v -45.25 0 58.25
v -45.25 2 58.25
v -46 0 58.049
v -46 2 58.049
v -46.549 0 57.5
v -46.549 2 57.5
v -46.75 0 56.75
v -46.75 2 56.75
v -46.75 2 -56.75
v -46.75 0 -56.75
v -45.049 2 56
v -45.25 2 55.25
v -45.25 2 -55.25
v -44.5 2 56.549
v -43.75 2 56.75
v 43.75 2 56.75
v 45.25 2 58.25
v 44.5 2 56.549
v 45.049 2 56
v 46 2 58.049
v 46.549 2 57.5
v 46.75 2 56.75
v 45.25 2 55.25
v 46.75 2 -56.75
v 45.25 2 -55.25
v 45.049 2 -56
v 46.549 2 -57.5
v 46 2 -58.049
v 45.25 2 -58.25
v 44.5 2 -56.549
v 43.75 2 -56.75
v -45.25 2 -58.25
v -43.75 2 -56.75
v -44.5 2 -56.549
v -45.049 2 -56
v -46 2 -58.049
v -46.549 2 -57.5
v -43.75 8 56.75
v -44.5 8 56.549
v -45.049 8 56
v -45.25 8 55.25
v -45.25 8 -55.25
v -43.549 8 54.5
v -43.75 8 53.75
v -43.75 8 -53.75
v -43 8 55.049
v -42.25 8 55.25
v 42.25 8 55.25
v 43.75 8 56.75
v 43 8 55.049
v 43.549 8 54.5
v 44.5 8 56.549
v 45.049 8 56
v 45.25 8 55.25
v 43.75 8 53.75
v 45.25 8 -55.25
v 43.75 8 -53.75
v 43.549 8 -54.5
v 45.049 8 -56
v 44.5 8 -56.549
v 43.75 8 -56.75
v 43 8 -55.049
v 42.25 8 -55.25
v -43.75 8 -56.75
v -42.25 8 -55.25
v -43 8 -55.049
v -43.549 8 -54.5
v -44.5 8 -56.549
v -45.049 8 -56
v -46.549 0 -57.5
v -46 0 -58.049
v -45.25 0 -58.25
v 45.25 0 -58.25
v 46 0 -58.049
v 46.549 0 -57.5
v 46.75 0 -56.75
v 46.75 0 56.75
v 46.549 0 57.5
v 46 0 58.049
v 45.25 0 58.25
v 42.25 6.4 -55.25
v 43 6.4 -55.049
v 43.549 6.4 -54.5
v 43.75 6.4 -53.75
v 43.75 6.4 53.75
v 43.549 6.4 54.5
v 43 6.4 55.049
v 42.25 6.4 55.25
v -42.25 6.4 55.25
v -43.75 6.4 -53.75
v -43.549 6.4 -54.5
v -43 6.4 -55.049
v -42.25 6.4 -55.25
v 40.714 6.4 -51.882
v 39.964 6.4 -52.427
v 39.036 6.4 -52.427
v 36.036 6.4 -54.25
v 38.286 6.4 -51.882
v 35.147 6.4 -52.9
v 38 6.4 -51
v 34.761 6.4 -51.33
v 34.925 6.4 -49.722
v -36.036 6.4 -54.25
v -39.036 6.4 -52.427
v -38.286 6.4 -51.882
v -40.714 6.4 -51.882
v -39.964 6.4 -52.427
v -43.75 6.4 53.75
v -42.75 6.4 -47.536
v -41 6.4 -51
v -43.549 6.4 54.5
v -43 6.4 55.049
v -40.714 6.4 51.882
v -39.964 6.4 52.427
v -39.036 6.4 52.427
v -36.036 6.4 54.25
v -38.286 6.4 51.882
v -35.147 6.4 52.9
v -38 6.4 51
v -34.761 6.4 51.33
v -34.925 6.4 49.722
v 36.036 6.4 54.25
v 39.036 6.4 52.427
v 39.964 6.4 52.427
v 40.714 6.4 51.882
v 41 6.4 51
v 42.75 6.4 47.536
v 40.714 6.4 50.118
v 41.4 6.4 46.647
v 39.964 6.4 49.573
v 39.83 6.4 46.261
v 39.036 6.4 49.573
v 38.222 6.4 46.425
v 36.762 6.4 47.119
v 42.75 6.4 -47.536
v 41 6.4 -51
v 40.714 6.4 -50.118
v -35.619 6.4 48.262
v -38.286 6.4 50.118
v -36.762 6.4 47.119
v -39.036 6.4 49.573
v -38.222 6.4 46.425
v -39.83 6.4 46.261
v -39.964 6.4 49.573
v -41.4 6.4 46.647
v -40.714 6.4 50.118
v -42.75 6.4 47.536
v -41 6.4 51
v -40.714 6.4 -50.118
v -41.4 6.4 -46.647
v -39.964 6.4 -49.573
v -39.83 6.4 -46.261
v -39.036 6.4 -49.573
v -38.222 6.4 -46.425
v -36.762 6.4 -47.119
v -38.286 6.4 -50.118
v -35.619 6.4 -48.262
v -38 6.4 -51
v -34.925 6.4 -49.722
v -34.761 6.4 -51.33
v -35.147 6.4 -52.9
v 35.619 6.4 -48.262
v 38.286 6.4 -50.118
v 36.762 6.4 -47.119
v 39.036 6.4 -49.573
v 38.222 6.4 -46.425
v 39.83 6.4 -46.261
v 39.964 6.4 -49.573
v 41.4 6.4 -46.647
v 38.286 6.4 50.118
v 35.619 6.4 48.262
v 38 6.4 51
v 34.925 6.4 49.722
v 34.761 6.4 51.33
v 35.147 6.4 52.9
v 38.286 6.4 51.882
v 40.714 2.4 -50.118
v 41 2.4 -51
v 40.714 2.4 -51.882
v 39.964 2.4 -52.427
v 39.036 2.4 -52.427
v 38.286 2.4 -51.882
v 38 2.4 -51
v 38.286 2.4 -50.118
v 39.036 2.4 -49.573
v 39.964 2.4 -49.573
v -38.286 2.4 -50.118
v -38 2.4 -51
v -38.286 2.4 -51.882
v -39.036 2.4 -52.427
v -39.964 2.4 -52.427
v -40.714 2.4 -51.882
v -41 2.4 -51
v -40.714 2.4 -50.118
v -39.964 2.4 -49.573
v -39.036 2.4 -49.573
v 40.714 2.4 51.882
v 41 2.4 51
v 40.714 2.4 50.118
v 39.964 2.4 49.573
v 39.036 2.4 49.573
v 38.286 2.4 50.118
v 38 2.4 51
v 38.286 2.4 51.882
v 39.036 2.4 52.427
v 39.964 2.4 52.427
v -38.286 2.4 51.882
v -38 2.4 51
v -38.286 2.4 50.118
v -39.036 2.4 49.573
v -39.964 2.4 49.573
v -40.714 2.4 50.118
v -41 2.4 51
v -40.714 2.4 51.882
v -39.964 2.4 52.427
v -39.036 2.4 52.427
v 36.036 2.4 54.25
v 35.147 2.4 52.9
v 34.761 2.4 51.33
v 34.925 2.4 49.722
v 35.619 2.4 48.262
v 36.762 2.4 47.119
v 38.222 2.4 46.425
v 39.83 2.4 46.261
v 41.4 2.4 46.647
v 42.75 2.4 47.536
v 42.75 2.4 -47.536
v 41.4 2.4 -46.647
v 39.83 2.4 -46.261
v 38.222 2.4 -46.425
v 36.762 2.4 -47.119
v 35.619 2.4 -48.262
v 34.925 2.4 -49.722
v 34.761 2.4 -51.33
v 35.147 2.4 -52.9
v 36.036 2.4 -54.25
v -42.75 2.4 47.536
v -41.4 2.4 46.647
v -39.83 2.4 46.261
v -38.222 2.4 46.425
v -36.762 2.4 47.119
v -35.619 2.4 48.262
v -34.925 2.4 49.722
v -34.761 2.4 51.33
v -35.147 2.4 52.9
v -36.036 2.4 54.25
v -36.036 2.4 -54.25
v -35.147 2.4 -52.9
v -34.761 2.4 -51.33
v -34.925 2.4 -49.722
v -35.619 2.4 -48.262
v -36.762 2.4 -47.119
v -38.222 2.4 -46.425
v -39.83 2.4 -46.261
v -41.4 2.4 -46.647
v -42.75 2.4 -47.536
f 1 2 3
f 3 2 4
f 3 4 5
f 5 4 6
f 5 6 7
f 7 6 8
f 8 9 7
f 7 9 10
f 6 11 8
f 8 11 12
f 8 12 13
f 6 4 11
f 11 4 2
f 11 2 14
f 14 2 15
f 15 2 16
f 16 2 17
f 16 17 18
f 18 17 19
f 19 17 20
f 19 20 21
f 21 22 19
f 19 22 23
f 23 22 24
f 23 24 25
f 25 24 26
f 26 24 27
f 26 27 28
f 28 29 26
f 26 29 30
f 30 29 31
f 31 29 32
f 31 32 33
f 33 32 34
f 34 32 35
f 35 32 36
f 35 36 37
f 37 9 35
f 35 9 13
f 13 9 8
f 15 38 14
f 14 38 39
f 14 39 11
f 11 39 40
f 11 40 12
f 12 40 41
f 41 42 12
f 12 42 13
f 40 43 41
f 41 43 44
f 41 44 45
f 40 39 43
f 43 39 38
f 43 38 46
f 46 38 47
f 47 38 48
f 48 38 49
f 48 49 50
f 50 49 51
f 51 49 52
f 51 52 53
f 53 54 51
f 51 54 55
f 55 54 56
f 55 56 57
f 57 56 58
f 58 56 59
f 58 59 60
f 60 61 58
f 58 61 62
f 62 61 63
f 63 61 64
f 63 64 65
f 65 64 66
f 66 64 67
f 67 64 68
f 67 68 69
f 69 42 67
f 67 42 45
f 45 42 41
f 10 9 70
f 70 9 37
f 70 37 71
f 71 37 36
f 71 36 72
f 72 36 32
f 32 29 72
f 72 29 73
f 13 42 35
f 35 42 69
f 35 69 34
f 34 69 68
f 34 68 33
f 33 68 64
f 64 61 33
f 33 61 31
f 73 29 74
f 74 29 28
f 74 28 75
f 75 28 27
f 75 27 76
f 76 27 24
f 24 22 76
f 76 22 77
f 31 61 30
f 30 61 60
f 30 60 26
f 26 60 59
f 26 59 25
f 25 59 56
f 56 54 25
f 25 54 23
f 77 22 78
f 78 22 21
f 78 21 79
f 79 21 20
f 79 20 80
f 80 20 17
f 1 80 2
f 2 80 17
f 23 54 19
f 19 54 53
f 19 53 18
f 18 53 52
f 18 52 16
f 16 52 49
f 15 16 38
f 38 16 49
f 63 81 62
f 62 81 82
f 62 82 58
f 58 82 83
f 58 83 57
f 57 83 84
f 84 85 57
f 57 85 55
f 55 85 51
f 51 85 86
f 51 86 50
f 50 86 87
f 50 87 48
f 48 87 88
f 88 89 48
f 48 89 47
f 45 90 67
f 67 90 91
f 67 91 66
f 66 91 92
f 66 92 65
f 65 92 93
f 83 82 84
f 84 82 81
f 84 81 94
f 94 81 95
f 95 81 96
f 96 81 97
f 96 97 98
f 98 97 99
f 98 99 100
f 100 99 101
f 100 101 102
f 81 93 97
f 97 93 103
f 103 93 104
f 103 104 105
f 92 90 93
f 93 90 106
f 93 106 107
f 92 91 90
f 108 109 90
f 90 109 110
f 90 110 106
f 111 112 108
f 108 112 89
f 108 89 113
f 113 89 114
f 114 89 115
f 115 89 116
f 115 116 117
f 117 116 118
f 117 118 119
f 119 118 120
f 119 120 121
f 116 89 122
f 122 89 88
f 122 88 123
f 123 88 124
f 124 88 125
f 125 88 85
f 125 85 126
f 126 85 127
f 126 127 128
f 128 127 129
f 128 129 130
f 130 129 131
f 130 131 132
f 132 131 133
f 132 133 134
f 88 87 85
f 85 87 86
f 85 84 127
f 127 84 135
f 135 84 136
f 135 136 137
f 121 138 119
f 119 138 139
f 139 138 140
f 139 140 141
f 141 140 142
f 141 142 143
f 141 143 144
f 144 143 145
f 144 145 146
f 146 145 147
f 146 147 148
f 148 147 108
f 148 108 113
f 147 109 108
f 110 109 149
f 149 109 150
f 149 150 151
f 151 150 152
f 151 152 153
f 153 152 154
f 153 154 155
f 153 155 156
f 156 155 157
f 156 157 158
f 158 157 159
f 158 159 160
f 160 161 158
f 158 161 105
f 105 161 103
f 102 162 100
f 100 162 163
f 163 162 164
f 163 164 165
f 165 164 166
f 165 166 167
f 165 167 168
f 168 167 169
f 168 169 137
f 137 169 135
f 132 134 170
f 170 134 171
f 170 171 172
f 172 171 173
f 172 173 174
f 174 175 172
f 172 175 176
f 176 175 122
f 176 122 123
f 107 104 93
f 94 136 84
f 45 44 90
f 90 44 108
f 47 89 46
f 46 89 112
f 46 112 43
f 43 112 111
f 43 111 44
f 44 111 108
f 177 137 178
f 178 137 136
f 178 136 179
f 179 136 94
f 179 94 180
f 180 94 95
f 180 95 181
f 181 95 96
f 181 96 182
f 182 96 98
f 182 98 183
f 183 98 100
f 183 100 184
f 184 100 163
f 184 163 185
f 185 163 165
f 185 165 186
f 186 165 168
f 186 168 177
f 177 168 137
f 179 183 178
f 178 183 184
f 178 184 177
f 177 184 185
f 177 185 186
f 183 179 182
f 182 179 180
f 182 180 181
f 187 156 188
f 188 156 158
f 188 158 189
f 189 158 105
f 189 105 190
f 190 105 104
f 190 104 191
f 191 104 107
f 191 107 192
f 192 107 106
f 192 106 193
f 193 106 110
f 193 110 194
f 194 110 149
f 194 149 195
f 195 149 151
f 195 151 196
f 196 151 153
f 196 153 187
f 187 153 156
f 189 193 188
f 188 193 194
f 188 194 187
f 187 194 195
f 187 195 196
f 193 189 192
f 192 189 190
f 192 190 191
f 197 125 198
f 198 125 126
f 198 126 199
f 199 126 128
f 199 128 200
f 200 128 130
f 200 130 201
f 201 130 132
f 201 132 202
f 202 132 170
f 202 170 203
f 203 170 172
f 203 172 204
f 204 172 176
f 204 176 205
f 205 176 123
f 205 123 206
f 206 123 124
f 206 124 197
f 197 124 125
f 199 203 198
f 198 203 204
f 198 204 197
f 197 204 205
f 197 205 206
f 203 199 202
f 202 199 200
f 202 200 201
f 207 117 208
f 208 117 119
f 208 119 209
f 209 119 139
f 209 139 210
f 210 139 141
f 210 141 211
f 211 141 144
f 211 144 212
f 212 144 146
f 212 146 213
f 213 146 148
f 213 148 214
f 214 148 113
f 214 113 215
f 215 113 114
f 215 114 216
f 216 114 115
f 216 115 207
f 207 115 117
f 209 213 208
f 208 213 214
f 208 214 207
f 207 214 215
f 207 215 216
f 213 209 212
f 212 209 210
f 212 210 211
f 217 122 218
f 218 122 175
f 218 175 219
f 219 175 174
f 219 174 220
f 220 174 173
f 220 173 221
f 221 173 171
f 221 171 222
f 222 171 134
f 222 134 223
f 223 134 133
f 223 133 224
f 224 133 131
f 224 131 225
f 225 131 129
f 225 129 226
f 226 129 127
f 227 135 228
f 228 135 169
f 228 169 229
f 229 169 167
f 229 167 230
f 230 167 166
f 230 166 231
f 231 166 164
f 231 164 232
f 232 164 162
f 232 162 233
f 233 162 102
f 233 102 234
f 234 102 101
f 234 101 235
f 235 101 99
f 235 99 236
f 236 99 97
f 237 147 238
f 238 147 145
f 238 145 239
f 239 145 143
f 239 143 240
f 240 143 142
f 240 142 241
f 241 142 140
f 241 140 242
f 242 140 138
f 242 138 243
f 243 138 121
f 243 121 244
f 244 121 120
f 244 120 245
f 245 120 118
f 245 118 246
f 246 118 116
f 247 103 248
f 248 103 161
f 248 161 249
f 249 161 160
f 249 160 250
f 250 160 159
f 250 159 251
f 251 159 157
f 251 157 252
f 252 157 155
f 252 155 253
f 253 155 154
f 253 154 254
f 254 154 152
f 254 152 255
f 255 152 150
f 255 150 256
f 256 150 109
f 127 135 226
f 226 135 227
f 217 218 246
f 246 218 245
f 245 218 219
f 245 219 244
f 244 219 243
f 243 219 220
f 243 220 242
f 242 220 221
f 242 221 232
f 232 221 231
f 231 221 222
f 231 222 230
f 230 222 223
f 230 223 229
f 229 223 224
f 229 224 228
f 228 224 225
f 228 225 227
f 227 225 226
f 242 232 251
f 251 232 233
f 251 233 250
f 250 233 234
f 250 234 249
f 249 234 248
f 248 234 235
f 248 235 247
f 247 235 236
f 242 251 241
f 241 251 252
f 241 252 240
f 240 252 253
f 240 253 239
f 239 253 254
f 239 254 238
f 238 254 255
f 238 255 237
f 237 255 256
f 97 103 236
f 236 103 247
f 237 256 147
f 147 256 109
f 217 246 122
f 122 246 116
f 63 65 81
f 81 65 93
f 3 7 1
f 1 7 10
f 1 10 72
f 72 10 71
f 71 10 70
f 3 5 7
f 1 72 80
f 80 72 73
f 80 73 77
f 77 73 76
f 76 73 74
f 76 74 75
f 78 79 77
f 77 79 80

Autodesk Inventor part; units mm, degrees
ref_plane "YZ Plane" through (0, 0, 0) normal (1, 0, 0) x (0, 1, 0)
ref_plane "XZ Plane" through (0, 0, 0) normal (0, 1, 0) x (-1, 0, 0)
ref_plane "XY Plane" through (0, 0, 0) normal (0, 0, 1) x (1, 0, 0)
sketch "Sketch1" plane through (0, 0, 0) normal (0, 1, 0) x (-1, 0, 0)
  line L0 (-46.75, 58.25) -> (46.75, 58.25)
  line L1 (46.75, 58.25) -> (46.75, -58.25)
  line L2 (46.75, -58.25) -> (-46.75, -58.25)
  line L3 (-46.75, -58.25) -> (-46.75, 58.25)
  line L4 (-46.75, 58.25) -> (46.75, -58.25) construction
  line L5 (46.75, 58.25) -> (-46.75, -58.25) construction
  point P0 (0, 0)
  dimension "d0" = 116.5
  dimension "d1" = 93.5
extrude "Extrusion1" add sketch "Sketch1" along normal blind 8
sketch "Sketch2" plane through (0, 8, 0) normal (0, 1, 0) x (1, 0, 0)
  line L0 (43.75, -55.25) -> (-43.75, -55.25)
  line L1 (-43.75, -55.25) -> (-43.75, 55.25)
  line L2 (-43.75, 55.25) -> (43.75, 55.25)
  line L3 (43.75, 55.25) -> (43.75, -55.25)
  line L4 (43.75, -55.25) -> (-43.75, 55.25) construction
  line L5 (-43.75, -55.25) -> (43.75, 55.25) construction
  point P0 (0, 0)
  dimension "d4" = 110.5
  dimension "d5" = 87.5
extrude "Extrusion2" cut sketch "Sketch2" against normal blind 1.6
sketch "Sketch3" plane through (0, 6.4, 0) normal (0, 1, 0) x (1, 0, 0)
  line L0 (42.75, -54.25) -> (-42.75, -54.25)
  line L1 (-42.75, -54.25) -> (-42.75, 54.25)
  line L2 (-42.75, 54.25) -> (42.75, 54.25)
  line L3 (42.75, 54.25) -> (42.75, -54.25)
  line L4 (42.75, -54.25) -> (-42.75, 54.25) construction
  line L5 (-42.75, -54.25) -> (42.75, 54.25) construction
  point P0 (0, 0)
  dimension "d8" = 108.5
  dimension "d9" = 85.5
extrude "Extrusion3" cut sketch "Sketch3" against normal blind 4
sketch "Sketch4" plane through (0, 2.4, 0) normal (0, 1, 0) x (1, 0, 0)
  circle A0 centre (-39.5, -51) radius 4.75
  circle A1 centre (-39.5, 51) radius 4.75
  line L0 (42.75, -54.25) -> (-42.75, -54.25) projected
  circle A2 centre (39.5, -51) radius 4.75
  line L1 (42.75, 54.25) -> (42.75, -54.25) projected
  circle A3 centre (39.5, 51) radius 4.75
  line L2 (-42.75, -54.25) -> (-42.75, 54.25) projected
  line L3 (-43.75, -55.25) -> (-43.75, 55.25) projected
  line L4 (-43.75, 55.25) -> (43.75, 55.25) projected
  line L5 (43.75, -55.25) -> (-43.75, -55.25) projected
  point P0 (0, 0)
  point P1 (-42.75, 54.25)
  point P2 (-42.75, -47.5359)
  point P3 (-36.0359, -54.25)
  point P4 (42.75, -47.5359)
  point P5 (36.0359, -54.25)
  point P6 (41, 55.25)
  point P7 (41, -55.25)
  point P8 (-41, -55.25)
  point P9 (-41, 55.25)
  dimension "d12" = 9.5
  dimension "d13" = 9.5
  dimension "d14" = 102
  dimension "d17" = 9.5
  dimension "d20" = 79
  dimension "d21" = 9.5
  dimension "d22" = 102
  dimension "d23" = 79
  dimension "d42" = 4.25
  dimension "d43" = 4.25
  dimension "d44" = 4.25
  dimension "d45" = 4.25
extrude "Extrusion4" add sketch "Sketch4" along normal blind 4 contours A0 L0 L2 | L2 L0 A0 L5 L3 | L3 A0 | A1 L3 L4 | A0 L5 | A2 L1 L0 | L0 L1 A2 L5 | A1 L3 | L5 A2 | L4 A1 | A3 L4 | A3 L4 picked at (-38.9284, 52.0845)
sketch "Sketch5" plane through (0, 6.4, 0) normal (0, 1, 0) x (1, 0, 0)
  arc A0 (-36.0359, -54.25) -> (-42.75, -47.5359) centre (-39.5, -51) ccw projected
  circle A1 centre (-39.5, -51) radius 1.5
  arc A2 (-42.75, 47.5359) -> (-36.0359, 54.25) centre (-39.5, 51) ccw projected
  circle A3 centre (-39.5, 51) radius 1.5
  arc A4 (36.0359, 54.25) -> (42.75, 47.5359) centre (39.5, 51) ccw projected
  circle A5 centre (39.5, 51) radius 1.5
  arc A6 (42.75, -47.5359) -> (36.0359, -54.25) centre (39.5, -51) ccw projected
  circle A7 centre (39.5, -51) radius 1.5
  point P0 (0, 0)
  point P1 (-41.8318, -54.25)
  dimension "d27" = 3
  dimension "d28" = 3
  dimension "d29" = 3
  dimension "d30" = 3
extrude "Extrusion5" cut sketch "Sketch5" against normal blind 4
fillet "Fillet1" radius 1.5 4 edges at (-43.75, 7.2, 55.25) (-43.75, 7.2, -55.25) (43.75, 7.2, 55.25) (43.75, 7.2, -55.25)
sketch "Sketch6" plane through (0, 8, 0) normal (0, 1, 0) x (1, 0, 0)
  line L0 (45.25, -56.75) -> (-45.25, -56.75)
  line L1 (-45.25, -56.75) -> (-45.25, 56.75)
  line L2 (-45.25, 56.75) -> (45.25, 56.75)
  line L3 (45.25, 56.75) -> (45.25, -56.75)
  line L4 (45.25, -56.75) -> (-45.25, 56.75) construction
  line L5 (-45.25, -56.75) -> (45.25, 56.75) construction
  line L6 (50, -69.25) -> (-50, -69.25)
  line L7 (-50, -69.25) -> (-50, 69.25)
  line L8 (-50, 69.25) -> (50, 69.25)
  line L9 (50, 69.25) -> (50, -69.25)
  line L10 (50, -69.25) -> (-50, 69.25) construction
  line L11 (-50, -69.25) -> (50, 69.25) construction
  point P0 (0, 0)
  dimension "d35" = 113.5
  dimension "d36" = 90.5
  dimension "d37" = 138.5
  dimension "d38" = 100
extrude "Extrusion6" cut sketch "Sketch6" against normal blind 6
fillet "Fillet3" radius 1.5 8 edges at (45.25, 5, 56.75) (46.75, 1, 58.25) (45.25, 5, -56.75) (46.75, 1, -58.25) (-45.25, 5, -56.75) (-46.75, 1, -58.25) (-45.25, 5, 56.75) (-46.75, 1, 58.25)
properties part number "BoardMount"
